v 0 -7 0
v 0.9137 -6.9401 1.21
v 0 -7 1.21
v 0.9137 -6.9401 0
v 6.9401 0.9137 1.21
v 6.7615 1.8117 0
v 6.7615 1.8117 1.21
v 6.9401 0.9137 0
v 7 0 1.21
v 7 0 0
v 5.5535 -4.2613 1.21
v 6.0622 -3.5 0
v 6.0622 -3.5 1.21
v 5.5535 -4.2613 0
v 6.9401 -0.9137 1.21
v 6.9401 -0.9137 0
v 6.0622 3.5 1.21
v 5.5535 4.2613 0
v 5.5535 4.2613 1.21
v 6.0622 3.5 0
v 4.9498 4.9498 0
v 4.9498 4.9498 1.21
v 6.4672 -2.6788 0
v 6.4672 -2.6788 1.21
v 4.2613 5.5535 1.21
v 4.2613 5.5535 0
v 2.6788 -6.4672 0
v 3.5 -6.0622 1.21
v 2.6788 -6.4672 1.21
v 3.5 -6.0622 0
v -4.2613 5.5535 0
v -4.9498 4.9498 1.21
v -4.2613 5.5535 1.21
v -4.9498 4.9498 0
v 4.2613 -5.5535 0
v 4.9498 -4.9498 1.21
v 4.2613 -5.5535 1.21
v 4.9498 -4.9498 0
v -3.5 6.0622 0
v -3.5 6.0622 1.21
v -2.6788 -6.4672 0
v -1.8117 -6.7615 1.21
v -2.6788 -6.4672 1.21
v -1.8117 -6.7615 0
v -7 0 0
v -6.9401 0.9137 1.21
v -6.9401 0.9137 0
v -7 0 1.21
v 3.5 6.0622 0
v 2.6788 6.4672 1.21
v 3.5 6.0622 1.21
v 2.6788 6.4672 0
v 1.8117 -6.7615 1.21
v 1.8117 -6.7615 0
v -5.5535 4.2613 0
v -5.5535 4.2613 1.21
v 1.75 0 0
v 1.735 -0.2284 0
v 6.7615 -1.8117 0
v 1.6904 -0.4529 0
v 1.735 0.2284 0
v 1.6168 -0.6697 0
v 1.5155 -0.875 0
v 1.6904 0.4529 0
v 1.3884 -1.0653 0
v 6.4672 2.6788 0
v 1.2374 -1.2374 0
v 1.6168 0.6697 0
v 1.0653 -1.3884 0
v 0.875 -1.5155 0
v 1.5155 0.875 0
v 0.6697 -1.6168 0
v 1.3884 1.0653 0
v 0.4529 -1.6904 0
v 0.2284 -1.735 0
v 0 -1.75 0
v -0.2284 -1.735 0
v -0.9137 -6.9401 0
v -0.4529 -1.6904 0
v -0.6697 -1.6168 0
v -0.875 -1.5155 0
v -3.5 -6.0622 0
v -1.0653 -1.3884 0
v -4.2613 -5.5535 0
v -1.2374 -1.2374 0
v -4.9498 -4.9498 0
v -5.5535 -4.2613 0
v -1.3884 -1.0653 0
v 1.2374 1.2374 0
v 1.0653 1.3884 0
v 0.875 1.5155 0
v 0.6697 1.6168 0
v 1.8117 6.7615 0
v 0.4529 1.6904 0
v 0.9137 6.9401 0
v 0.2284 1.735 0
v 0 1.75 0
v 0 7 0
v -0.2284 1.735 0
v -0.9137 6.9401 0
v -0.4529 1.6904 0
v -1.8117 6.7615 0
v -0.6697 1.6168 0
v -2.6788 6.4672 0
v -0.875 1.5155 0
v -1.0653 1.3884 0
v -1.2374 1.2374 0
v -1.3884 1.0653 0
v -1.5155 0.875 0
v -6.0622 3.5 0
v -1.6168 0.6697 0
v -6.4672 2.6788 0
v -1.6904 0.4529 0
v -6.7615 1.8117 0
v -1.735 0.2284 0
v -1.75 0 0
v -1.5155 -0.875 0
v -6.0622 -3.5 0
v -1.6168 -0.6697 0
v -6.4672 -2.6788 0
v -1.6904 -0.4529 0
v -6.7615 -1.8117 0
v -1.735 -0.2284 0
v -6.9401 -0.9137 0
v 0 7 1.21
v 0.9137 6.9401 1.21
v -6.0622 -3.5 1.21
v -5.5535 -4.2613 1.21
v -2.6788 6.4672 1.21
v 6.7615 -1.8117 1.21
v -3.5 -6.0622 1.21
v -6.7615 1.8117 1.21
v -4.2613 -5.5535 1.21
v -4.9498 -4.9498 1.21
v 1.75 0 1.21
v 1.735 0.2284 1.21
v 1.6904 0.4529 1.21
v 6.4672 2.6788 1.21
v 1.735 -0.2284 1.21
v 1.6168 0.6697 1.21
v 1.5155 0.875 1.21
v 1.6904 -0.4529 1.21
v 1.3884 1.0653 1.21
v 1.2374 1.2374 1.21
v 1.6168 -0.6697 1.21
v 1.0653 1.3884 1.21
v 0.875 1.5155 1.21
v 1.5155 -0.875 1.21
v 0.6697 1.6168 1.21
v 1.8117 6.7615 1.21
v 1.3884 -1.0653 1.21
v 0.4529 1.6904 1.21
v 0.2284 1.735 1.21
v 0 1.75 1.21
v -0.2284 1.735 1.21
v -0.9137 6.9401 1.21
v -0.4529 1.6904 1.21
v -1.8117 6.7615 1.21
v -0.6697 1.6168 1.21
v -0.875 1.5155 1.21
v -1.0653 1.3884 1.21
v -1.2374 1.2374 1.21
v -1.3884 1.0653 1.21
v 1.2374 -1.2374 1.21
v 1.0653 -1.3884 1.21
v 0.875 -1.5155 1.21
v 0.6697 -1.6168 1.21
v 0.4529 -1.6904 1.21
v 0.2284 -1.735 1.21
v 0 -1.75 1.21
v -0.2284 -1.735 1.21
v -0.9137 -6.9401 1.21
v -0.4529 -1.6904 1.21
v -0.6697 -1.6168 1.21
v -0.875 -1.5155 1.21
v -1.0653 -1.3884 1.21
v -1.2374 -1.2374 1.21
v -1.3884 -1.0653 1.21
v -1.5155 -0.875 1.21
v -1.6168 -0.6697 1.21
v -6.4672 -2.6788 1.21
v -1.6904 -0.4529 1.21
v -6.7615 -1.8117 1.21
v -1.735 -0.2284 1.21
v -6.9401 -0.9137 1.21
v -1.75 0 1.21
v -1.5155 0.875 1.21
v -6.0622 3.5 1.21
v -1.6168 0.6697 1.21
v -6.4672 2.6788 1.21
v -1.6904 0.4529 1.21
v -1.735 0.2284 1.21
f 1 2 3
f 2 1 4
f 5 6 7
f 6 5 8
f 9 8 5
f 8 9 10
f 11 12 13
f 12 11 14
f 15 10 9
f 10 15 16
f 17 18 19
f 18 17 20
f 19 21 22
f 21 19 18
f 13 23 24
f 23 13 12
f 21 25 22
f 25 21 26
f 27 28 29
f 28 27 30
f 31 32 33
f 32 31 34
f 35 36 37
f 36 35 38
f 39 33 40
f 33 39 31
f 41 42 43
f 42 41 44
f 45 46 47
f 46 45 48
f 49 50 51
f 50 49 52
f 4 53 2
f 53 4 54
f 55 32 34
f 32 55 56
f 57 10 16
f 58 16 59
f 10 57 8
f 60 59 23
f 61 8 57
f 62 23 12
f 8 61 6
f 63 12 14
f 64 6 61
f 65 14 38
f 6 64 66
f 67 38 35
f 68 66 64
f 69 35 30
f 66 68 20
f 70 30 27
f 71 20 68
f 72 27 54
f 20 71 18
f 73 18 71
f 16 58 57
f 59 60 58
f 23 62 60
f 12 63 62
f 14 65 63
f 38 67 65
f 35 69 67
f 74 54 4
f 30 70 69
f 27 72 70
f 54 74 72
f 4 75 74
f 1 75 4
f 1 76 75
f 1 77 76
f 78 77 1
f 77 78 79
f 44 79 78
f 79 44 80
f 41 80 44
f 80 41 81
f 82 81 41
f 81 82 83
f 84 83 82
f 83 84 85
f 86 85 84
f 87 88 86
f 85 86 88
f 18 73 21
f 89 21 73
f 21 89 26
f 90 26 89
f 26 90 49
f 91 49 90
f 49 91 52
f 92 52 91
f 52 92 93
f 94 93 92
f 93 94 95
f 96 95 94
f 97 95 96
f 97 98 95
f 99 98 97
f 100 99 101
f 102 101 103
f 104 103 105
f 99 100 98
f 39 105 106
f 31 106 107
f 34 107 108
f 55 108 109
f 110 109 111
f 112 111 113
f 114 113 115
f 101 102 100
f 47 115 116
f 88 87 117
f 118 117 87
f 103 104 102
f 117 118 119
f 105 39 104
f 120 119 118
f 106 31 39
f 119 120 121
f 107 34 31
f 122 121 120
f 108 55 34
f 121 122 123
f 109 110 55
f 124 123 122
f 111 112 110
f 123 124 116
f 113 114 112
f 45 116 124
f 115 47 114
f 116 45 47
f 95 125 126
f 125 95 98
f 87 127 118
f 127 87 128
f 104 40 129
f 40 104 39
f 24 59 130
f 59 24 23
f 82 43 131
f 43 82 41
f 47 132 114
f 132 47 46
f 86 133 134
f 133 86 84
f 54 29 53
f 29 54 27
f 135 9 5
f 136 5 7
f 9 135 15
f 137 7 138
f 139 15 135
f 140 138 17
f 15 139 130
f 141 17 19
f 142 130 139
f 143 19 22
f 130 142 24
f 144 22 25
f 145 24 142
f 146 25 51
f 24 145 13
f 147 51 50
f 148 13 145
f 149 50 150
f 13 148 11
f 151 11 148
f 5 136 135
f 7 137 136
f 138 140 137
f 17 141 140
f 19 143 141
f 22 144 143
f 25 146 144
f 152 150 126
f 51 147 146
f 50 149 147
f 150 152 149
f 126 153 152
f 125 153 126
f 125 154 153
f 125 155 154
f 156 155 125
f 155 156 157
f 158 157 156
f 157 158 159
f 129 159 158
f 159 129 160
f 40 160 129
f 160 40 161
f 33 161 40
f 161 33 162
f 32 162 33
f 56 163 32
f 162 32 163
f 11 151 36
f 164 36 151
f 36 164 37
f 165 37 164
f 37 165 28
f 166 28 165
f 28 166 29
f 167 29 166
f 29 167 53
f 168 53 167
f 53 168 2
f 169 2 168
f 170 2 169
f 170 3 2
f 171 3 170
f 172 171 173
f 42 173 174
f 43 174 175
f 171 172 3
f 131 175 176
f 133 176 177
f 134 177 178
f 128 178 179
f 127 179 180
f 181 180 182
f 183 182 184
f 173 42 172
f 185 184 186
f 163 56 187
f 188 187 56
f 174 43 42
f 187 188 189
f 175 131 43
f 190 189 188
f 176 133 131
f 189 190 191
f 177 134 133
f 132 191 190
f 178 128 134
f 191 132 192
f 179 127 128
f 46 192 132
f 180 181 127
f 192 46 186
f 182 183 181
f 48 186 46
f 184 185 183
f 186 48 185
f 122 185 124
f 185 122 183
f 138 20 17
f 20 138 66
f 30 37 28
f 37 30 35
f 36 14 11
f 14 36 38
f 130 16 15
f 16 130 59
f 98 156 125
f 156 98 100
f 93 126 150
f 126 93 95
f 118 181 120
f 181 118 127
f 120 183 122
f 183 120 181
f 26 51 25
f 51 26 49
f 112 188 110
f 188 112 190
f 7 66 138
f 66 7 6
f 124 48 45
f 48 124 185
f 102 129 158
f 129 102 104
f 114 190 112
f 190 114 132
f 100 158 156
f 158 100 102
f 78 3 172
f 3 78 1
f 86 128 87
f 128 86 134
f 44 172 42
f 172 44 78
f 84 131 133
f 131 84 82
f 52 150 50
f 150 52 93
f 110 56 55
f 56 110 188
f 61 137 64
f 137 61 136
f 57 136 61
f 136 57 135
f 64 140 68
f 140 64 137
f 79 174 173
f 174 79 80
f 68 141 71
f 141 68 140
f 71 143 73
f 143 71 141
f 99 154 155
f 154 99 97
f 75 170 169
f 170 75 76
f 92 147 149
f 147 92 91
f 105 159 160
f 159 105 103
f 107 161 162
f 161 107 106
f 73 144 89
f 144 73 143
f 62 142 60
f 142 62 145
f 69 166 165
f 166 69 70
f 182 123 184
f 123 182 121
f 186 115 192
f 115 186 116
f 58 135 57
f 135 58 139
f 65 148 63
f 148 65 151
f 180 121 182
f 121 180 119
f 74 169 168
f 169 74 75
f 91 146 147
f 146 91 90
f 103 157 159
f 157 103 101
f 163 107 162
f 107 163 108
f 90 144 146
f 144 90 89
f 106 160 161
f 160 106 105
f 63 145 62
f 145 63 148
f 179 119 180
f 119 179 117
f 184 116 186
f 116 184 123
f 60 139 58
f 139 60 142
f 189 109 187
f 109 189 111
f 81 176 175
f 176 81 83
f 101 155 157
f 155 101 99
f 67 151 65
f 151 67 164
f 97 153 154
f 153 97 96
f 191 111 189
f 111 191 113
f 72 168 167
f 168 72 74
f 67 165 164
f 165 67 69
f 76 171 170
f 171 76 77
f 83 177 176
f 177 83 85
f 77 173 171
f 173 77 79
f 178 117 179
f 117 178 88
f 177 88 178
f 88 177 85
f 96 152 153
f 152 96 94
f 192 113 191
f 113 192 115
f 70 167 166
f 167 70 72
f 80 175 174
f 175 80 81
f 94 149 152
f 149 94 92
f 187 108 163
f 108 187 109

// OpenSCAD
// file: parameters.scad
// =============================================================================
// Gen-AB Dual-rotor ULTRA-MICRO-GAP copper-max AFPM — WOUND-AWARE (HARD GATE)
// PRIMARY challenger vs Gen-Y. Thinner m2m + larger copper window + 160 t.
// =============================================================================

// --- Wire / wind budget (26 AWG, ~1 lb spool ≈ 390 m bare-equiv) --------------
wire_awg            = 26;
wire_od             = 0.45;     // insulated OD mm
turns               = 160;      // +10 vs Gen-Y 150
fill                = 0.70;
layers_per_face     = 2;        // axial layers proud of EACH flange
wind_build_axial    = layers_per_face * wire_od * fill;   // 0.63 mm
wind_build_radial   = 3 * wire_od * fill;                 // 0.945 mm

// --- Pancake former (bare STL) — thinner web/flange than Gen-Y ---------------
coil_id_r           = 20.0;     // larger copper window vs Gen-Y 21–60
coil_od_r           = 62.0;
span_deg            = 26.0;     // 12 stations × 30° pitch
former_web          = 1.6;      // print-safe min
flange_t            = 0.60;     // print-safe min (≥0.6)
wall                = 1.2;
slot_w              = 2.4;
mount_hole          = 3.5;
tab_len             = 7.0;

former_bare_h       = former_web + 2 * flange_t;            // 2.8 mm
coil_envelope_h     = former_bare_h + 2 * wind_build_axial; // 4.06 mm

// --- Running clearance (magnet face → WOUND face) EACH side ------------------
run_clear           = 0.58;     // PASS ≥ 0.5 (prefer ≥0.65; ultra-micro 0.55–0.60 band)
gap_spacer_h        = run_clear + wind_build_axial;         // 1.21 mm
m2m                 = coil_envelope_h + 2 * run_clear;      // 5.22 mm (beats Gen-Y 5.76)

// --- Mid stator (12 pancakes 3φ; winds proud both faces) ---------------------
coil_stations       = 12;
bay_r_in            = coil_id_r - 2.0 - wind_build_radial;
bay_r_out           = coil_od_r + 2.0 + wind_build_radial;
bay_span            = span_deg + 4.0;
bay_offset          = 2.0;
stator_thick        = former_bare_h;                        // winds proud ±Z
stator_od           = 156.0;
shaft_clear_stator  = 36.0;
coil_mount_r        = 28.0;

// --- Rotors (×2) — 8×Ø20 + 24×Ø5 Halbach each face ---------------------------
large_pocket_d      = 20.3;
small_pocket_d      = 5.3;
pocket_h            = 5.2;
large_n             = 8;
R_large             = 52.0;
R_small_inner       = 40.0;
R_small_mid         = 52.0;
R_small_outer       = 64.0;
carrier_od          = 152.0;
carrier_thick       = 7.5;
hub_h               = 10.0;
hub_od              = 30.0;
rotor_b_offset_deg  = 22.5;

// --- Modular MAX interface (Gen-E family) ------------------------------------
shaft_bore          = 8.35;
bearing_d           = 21.85;
bearing_h           = 7.2;
m3_clear            = 3.5;
bolt_r_inner        = 36.0;
bolt_n_inner        = 6;
flange_bolt_r       = 72.0;
flange_bolt_n       = 6;
brace_r             = 68.0;
brace_d             = 4.3;
brace_n             = 4;

spacer_pad_od       = 14.0;
spacer_pad_id       = m3_clear;
endbell_od          = 156.0;
endbell_thick       = 8.0;
endbell_shaft_clear = 10.0;

$fn = 64;
// main file
// Gen-AB gap spacer — h = run_clear + wind_build_axial; print ×12
include <parameters.scad>;
$fn = 48;
difference() {
    cylinder(d=spacer_pad_od, h=gap_spacer_h);
    translate([0, 0, -0.1]) cylinder(d=spacer_pad_id, h=gap_spacer_h + 0.2);
}
